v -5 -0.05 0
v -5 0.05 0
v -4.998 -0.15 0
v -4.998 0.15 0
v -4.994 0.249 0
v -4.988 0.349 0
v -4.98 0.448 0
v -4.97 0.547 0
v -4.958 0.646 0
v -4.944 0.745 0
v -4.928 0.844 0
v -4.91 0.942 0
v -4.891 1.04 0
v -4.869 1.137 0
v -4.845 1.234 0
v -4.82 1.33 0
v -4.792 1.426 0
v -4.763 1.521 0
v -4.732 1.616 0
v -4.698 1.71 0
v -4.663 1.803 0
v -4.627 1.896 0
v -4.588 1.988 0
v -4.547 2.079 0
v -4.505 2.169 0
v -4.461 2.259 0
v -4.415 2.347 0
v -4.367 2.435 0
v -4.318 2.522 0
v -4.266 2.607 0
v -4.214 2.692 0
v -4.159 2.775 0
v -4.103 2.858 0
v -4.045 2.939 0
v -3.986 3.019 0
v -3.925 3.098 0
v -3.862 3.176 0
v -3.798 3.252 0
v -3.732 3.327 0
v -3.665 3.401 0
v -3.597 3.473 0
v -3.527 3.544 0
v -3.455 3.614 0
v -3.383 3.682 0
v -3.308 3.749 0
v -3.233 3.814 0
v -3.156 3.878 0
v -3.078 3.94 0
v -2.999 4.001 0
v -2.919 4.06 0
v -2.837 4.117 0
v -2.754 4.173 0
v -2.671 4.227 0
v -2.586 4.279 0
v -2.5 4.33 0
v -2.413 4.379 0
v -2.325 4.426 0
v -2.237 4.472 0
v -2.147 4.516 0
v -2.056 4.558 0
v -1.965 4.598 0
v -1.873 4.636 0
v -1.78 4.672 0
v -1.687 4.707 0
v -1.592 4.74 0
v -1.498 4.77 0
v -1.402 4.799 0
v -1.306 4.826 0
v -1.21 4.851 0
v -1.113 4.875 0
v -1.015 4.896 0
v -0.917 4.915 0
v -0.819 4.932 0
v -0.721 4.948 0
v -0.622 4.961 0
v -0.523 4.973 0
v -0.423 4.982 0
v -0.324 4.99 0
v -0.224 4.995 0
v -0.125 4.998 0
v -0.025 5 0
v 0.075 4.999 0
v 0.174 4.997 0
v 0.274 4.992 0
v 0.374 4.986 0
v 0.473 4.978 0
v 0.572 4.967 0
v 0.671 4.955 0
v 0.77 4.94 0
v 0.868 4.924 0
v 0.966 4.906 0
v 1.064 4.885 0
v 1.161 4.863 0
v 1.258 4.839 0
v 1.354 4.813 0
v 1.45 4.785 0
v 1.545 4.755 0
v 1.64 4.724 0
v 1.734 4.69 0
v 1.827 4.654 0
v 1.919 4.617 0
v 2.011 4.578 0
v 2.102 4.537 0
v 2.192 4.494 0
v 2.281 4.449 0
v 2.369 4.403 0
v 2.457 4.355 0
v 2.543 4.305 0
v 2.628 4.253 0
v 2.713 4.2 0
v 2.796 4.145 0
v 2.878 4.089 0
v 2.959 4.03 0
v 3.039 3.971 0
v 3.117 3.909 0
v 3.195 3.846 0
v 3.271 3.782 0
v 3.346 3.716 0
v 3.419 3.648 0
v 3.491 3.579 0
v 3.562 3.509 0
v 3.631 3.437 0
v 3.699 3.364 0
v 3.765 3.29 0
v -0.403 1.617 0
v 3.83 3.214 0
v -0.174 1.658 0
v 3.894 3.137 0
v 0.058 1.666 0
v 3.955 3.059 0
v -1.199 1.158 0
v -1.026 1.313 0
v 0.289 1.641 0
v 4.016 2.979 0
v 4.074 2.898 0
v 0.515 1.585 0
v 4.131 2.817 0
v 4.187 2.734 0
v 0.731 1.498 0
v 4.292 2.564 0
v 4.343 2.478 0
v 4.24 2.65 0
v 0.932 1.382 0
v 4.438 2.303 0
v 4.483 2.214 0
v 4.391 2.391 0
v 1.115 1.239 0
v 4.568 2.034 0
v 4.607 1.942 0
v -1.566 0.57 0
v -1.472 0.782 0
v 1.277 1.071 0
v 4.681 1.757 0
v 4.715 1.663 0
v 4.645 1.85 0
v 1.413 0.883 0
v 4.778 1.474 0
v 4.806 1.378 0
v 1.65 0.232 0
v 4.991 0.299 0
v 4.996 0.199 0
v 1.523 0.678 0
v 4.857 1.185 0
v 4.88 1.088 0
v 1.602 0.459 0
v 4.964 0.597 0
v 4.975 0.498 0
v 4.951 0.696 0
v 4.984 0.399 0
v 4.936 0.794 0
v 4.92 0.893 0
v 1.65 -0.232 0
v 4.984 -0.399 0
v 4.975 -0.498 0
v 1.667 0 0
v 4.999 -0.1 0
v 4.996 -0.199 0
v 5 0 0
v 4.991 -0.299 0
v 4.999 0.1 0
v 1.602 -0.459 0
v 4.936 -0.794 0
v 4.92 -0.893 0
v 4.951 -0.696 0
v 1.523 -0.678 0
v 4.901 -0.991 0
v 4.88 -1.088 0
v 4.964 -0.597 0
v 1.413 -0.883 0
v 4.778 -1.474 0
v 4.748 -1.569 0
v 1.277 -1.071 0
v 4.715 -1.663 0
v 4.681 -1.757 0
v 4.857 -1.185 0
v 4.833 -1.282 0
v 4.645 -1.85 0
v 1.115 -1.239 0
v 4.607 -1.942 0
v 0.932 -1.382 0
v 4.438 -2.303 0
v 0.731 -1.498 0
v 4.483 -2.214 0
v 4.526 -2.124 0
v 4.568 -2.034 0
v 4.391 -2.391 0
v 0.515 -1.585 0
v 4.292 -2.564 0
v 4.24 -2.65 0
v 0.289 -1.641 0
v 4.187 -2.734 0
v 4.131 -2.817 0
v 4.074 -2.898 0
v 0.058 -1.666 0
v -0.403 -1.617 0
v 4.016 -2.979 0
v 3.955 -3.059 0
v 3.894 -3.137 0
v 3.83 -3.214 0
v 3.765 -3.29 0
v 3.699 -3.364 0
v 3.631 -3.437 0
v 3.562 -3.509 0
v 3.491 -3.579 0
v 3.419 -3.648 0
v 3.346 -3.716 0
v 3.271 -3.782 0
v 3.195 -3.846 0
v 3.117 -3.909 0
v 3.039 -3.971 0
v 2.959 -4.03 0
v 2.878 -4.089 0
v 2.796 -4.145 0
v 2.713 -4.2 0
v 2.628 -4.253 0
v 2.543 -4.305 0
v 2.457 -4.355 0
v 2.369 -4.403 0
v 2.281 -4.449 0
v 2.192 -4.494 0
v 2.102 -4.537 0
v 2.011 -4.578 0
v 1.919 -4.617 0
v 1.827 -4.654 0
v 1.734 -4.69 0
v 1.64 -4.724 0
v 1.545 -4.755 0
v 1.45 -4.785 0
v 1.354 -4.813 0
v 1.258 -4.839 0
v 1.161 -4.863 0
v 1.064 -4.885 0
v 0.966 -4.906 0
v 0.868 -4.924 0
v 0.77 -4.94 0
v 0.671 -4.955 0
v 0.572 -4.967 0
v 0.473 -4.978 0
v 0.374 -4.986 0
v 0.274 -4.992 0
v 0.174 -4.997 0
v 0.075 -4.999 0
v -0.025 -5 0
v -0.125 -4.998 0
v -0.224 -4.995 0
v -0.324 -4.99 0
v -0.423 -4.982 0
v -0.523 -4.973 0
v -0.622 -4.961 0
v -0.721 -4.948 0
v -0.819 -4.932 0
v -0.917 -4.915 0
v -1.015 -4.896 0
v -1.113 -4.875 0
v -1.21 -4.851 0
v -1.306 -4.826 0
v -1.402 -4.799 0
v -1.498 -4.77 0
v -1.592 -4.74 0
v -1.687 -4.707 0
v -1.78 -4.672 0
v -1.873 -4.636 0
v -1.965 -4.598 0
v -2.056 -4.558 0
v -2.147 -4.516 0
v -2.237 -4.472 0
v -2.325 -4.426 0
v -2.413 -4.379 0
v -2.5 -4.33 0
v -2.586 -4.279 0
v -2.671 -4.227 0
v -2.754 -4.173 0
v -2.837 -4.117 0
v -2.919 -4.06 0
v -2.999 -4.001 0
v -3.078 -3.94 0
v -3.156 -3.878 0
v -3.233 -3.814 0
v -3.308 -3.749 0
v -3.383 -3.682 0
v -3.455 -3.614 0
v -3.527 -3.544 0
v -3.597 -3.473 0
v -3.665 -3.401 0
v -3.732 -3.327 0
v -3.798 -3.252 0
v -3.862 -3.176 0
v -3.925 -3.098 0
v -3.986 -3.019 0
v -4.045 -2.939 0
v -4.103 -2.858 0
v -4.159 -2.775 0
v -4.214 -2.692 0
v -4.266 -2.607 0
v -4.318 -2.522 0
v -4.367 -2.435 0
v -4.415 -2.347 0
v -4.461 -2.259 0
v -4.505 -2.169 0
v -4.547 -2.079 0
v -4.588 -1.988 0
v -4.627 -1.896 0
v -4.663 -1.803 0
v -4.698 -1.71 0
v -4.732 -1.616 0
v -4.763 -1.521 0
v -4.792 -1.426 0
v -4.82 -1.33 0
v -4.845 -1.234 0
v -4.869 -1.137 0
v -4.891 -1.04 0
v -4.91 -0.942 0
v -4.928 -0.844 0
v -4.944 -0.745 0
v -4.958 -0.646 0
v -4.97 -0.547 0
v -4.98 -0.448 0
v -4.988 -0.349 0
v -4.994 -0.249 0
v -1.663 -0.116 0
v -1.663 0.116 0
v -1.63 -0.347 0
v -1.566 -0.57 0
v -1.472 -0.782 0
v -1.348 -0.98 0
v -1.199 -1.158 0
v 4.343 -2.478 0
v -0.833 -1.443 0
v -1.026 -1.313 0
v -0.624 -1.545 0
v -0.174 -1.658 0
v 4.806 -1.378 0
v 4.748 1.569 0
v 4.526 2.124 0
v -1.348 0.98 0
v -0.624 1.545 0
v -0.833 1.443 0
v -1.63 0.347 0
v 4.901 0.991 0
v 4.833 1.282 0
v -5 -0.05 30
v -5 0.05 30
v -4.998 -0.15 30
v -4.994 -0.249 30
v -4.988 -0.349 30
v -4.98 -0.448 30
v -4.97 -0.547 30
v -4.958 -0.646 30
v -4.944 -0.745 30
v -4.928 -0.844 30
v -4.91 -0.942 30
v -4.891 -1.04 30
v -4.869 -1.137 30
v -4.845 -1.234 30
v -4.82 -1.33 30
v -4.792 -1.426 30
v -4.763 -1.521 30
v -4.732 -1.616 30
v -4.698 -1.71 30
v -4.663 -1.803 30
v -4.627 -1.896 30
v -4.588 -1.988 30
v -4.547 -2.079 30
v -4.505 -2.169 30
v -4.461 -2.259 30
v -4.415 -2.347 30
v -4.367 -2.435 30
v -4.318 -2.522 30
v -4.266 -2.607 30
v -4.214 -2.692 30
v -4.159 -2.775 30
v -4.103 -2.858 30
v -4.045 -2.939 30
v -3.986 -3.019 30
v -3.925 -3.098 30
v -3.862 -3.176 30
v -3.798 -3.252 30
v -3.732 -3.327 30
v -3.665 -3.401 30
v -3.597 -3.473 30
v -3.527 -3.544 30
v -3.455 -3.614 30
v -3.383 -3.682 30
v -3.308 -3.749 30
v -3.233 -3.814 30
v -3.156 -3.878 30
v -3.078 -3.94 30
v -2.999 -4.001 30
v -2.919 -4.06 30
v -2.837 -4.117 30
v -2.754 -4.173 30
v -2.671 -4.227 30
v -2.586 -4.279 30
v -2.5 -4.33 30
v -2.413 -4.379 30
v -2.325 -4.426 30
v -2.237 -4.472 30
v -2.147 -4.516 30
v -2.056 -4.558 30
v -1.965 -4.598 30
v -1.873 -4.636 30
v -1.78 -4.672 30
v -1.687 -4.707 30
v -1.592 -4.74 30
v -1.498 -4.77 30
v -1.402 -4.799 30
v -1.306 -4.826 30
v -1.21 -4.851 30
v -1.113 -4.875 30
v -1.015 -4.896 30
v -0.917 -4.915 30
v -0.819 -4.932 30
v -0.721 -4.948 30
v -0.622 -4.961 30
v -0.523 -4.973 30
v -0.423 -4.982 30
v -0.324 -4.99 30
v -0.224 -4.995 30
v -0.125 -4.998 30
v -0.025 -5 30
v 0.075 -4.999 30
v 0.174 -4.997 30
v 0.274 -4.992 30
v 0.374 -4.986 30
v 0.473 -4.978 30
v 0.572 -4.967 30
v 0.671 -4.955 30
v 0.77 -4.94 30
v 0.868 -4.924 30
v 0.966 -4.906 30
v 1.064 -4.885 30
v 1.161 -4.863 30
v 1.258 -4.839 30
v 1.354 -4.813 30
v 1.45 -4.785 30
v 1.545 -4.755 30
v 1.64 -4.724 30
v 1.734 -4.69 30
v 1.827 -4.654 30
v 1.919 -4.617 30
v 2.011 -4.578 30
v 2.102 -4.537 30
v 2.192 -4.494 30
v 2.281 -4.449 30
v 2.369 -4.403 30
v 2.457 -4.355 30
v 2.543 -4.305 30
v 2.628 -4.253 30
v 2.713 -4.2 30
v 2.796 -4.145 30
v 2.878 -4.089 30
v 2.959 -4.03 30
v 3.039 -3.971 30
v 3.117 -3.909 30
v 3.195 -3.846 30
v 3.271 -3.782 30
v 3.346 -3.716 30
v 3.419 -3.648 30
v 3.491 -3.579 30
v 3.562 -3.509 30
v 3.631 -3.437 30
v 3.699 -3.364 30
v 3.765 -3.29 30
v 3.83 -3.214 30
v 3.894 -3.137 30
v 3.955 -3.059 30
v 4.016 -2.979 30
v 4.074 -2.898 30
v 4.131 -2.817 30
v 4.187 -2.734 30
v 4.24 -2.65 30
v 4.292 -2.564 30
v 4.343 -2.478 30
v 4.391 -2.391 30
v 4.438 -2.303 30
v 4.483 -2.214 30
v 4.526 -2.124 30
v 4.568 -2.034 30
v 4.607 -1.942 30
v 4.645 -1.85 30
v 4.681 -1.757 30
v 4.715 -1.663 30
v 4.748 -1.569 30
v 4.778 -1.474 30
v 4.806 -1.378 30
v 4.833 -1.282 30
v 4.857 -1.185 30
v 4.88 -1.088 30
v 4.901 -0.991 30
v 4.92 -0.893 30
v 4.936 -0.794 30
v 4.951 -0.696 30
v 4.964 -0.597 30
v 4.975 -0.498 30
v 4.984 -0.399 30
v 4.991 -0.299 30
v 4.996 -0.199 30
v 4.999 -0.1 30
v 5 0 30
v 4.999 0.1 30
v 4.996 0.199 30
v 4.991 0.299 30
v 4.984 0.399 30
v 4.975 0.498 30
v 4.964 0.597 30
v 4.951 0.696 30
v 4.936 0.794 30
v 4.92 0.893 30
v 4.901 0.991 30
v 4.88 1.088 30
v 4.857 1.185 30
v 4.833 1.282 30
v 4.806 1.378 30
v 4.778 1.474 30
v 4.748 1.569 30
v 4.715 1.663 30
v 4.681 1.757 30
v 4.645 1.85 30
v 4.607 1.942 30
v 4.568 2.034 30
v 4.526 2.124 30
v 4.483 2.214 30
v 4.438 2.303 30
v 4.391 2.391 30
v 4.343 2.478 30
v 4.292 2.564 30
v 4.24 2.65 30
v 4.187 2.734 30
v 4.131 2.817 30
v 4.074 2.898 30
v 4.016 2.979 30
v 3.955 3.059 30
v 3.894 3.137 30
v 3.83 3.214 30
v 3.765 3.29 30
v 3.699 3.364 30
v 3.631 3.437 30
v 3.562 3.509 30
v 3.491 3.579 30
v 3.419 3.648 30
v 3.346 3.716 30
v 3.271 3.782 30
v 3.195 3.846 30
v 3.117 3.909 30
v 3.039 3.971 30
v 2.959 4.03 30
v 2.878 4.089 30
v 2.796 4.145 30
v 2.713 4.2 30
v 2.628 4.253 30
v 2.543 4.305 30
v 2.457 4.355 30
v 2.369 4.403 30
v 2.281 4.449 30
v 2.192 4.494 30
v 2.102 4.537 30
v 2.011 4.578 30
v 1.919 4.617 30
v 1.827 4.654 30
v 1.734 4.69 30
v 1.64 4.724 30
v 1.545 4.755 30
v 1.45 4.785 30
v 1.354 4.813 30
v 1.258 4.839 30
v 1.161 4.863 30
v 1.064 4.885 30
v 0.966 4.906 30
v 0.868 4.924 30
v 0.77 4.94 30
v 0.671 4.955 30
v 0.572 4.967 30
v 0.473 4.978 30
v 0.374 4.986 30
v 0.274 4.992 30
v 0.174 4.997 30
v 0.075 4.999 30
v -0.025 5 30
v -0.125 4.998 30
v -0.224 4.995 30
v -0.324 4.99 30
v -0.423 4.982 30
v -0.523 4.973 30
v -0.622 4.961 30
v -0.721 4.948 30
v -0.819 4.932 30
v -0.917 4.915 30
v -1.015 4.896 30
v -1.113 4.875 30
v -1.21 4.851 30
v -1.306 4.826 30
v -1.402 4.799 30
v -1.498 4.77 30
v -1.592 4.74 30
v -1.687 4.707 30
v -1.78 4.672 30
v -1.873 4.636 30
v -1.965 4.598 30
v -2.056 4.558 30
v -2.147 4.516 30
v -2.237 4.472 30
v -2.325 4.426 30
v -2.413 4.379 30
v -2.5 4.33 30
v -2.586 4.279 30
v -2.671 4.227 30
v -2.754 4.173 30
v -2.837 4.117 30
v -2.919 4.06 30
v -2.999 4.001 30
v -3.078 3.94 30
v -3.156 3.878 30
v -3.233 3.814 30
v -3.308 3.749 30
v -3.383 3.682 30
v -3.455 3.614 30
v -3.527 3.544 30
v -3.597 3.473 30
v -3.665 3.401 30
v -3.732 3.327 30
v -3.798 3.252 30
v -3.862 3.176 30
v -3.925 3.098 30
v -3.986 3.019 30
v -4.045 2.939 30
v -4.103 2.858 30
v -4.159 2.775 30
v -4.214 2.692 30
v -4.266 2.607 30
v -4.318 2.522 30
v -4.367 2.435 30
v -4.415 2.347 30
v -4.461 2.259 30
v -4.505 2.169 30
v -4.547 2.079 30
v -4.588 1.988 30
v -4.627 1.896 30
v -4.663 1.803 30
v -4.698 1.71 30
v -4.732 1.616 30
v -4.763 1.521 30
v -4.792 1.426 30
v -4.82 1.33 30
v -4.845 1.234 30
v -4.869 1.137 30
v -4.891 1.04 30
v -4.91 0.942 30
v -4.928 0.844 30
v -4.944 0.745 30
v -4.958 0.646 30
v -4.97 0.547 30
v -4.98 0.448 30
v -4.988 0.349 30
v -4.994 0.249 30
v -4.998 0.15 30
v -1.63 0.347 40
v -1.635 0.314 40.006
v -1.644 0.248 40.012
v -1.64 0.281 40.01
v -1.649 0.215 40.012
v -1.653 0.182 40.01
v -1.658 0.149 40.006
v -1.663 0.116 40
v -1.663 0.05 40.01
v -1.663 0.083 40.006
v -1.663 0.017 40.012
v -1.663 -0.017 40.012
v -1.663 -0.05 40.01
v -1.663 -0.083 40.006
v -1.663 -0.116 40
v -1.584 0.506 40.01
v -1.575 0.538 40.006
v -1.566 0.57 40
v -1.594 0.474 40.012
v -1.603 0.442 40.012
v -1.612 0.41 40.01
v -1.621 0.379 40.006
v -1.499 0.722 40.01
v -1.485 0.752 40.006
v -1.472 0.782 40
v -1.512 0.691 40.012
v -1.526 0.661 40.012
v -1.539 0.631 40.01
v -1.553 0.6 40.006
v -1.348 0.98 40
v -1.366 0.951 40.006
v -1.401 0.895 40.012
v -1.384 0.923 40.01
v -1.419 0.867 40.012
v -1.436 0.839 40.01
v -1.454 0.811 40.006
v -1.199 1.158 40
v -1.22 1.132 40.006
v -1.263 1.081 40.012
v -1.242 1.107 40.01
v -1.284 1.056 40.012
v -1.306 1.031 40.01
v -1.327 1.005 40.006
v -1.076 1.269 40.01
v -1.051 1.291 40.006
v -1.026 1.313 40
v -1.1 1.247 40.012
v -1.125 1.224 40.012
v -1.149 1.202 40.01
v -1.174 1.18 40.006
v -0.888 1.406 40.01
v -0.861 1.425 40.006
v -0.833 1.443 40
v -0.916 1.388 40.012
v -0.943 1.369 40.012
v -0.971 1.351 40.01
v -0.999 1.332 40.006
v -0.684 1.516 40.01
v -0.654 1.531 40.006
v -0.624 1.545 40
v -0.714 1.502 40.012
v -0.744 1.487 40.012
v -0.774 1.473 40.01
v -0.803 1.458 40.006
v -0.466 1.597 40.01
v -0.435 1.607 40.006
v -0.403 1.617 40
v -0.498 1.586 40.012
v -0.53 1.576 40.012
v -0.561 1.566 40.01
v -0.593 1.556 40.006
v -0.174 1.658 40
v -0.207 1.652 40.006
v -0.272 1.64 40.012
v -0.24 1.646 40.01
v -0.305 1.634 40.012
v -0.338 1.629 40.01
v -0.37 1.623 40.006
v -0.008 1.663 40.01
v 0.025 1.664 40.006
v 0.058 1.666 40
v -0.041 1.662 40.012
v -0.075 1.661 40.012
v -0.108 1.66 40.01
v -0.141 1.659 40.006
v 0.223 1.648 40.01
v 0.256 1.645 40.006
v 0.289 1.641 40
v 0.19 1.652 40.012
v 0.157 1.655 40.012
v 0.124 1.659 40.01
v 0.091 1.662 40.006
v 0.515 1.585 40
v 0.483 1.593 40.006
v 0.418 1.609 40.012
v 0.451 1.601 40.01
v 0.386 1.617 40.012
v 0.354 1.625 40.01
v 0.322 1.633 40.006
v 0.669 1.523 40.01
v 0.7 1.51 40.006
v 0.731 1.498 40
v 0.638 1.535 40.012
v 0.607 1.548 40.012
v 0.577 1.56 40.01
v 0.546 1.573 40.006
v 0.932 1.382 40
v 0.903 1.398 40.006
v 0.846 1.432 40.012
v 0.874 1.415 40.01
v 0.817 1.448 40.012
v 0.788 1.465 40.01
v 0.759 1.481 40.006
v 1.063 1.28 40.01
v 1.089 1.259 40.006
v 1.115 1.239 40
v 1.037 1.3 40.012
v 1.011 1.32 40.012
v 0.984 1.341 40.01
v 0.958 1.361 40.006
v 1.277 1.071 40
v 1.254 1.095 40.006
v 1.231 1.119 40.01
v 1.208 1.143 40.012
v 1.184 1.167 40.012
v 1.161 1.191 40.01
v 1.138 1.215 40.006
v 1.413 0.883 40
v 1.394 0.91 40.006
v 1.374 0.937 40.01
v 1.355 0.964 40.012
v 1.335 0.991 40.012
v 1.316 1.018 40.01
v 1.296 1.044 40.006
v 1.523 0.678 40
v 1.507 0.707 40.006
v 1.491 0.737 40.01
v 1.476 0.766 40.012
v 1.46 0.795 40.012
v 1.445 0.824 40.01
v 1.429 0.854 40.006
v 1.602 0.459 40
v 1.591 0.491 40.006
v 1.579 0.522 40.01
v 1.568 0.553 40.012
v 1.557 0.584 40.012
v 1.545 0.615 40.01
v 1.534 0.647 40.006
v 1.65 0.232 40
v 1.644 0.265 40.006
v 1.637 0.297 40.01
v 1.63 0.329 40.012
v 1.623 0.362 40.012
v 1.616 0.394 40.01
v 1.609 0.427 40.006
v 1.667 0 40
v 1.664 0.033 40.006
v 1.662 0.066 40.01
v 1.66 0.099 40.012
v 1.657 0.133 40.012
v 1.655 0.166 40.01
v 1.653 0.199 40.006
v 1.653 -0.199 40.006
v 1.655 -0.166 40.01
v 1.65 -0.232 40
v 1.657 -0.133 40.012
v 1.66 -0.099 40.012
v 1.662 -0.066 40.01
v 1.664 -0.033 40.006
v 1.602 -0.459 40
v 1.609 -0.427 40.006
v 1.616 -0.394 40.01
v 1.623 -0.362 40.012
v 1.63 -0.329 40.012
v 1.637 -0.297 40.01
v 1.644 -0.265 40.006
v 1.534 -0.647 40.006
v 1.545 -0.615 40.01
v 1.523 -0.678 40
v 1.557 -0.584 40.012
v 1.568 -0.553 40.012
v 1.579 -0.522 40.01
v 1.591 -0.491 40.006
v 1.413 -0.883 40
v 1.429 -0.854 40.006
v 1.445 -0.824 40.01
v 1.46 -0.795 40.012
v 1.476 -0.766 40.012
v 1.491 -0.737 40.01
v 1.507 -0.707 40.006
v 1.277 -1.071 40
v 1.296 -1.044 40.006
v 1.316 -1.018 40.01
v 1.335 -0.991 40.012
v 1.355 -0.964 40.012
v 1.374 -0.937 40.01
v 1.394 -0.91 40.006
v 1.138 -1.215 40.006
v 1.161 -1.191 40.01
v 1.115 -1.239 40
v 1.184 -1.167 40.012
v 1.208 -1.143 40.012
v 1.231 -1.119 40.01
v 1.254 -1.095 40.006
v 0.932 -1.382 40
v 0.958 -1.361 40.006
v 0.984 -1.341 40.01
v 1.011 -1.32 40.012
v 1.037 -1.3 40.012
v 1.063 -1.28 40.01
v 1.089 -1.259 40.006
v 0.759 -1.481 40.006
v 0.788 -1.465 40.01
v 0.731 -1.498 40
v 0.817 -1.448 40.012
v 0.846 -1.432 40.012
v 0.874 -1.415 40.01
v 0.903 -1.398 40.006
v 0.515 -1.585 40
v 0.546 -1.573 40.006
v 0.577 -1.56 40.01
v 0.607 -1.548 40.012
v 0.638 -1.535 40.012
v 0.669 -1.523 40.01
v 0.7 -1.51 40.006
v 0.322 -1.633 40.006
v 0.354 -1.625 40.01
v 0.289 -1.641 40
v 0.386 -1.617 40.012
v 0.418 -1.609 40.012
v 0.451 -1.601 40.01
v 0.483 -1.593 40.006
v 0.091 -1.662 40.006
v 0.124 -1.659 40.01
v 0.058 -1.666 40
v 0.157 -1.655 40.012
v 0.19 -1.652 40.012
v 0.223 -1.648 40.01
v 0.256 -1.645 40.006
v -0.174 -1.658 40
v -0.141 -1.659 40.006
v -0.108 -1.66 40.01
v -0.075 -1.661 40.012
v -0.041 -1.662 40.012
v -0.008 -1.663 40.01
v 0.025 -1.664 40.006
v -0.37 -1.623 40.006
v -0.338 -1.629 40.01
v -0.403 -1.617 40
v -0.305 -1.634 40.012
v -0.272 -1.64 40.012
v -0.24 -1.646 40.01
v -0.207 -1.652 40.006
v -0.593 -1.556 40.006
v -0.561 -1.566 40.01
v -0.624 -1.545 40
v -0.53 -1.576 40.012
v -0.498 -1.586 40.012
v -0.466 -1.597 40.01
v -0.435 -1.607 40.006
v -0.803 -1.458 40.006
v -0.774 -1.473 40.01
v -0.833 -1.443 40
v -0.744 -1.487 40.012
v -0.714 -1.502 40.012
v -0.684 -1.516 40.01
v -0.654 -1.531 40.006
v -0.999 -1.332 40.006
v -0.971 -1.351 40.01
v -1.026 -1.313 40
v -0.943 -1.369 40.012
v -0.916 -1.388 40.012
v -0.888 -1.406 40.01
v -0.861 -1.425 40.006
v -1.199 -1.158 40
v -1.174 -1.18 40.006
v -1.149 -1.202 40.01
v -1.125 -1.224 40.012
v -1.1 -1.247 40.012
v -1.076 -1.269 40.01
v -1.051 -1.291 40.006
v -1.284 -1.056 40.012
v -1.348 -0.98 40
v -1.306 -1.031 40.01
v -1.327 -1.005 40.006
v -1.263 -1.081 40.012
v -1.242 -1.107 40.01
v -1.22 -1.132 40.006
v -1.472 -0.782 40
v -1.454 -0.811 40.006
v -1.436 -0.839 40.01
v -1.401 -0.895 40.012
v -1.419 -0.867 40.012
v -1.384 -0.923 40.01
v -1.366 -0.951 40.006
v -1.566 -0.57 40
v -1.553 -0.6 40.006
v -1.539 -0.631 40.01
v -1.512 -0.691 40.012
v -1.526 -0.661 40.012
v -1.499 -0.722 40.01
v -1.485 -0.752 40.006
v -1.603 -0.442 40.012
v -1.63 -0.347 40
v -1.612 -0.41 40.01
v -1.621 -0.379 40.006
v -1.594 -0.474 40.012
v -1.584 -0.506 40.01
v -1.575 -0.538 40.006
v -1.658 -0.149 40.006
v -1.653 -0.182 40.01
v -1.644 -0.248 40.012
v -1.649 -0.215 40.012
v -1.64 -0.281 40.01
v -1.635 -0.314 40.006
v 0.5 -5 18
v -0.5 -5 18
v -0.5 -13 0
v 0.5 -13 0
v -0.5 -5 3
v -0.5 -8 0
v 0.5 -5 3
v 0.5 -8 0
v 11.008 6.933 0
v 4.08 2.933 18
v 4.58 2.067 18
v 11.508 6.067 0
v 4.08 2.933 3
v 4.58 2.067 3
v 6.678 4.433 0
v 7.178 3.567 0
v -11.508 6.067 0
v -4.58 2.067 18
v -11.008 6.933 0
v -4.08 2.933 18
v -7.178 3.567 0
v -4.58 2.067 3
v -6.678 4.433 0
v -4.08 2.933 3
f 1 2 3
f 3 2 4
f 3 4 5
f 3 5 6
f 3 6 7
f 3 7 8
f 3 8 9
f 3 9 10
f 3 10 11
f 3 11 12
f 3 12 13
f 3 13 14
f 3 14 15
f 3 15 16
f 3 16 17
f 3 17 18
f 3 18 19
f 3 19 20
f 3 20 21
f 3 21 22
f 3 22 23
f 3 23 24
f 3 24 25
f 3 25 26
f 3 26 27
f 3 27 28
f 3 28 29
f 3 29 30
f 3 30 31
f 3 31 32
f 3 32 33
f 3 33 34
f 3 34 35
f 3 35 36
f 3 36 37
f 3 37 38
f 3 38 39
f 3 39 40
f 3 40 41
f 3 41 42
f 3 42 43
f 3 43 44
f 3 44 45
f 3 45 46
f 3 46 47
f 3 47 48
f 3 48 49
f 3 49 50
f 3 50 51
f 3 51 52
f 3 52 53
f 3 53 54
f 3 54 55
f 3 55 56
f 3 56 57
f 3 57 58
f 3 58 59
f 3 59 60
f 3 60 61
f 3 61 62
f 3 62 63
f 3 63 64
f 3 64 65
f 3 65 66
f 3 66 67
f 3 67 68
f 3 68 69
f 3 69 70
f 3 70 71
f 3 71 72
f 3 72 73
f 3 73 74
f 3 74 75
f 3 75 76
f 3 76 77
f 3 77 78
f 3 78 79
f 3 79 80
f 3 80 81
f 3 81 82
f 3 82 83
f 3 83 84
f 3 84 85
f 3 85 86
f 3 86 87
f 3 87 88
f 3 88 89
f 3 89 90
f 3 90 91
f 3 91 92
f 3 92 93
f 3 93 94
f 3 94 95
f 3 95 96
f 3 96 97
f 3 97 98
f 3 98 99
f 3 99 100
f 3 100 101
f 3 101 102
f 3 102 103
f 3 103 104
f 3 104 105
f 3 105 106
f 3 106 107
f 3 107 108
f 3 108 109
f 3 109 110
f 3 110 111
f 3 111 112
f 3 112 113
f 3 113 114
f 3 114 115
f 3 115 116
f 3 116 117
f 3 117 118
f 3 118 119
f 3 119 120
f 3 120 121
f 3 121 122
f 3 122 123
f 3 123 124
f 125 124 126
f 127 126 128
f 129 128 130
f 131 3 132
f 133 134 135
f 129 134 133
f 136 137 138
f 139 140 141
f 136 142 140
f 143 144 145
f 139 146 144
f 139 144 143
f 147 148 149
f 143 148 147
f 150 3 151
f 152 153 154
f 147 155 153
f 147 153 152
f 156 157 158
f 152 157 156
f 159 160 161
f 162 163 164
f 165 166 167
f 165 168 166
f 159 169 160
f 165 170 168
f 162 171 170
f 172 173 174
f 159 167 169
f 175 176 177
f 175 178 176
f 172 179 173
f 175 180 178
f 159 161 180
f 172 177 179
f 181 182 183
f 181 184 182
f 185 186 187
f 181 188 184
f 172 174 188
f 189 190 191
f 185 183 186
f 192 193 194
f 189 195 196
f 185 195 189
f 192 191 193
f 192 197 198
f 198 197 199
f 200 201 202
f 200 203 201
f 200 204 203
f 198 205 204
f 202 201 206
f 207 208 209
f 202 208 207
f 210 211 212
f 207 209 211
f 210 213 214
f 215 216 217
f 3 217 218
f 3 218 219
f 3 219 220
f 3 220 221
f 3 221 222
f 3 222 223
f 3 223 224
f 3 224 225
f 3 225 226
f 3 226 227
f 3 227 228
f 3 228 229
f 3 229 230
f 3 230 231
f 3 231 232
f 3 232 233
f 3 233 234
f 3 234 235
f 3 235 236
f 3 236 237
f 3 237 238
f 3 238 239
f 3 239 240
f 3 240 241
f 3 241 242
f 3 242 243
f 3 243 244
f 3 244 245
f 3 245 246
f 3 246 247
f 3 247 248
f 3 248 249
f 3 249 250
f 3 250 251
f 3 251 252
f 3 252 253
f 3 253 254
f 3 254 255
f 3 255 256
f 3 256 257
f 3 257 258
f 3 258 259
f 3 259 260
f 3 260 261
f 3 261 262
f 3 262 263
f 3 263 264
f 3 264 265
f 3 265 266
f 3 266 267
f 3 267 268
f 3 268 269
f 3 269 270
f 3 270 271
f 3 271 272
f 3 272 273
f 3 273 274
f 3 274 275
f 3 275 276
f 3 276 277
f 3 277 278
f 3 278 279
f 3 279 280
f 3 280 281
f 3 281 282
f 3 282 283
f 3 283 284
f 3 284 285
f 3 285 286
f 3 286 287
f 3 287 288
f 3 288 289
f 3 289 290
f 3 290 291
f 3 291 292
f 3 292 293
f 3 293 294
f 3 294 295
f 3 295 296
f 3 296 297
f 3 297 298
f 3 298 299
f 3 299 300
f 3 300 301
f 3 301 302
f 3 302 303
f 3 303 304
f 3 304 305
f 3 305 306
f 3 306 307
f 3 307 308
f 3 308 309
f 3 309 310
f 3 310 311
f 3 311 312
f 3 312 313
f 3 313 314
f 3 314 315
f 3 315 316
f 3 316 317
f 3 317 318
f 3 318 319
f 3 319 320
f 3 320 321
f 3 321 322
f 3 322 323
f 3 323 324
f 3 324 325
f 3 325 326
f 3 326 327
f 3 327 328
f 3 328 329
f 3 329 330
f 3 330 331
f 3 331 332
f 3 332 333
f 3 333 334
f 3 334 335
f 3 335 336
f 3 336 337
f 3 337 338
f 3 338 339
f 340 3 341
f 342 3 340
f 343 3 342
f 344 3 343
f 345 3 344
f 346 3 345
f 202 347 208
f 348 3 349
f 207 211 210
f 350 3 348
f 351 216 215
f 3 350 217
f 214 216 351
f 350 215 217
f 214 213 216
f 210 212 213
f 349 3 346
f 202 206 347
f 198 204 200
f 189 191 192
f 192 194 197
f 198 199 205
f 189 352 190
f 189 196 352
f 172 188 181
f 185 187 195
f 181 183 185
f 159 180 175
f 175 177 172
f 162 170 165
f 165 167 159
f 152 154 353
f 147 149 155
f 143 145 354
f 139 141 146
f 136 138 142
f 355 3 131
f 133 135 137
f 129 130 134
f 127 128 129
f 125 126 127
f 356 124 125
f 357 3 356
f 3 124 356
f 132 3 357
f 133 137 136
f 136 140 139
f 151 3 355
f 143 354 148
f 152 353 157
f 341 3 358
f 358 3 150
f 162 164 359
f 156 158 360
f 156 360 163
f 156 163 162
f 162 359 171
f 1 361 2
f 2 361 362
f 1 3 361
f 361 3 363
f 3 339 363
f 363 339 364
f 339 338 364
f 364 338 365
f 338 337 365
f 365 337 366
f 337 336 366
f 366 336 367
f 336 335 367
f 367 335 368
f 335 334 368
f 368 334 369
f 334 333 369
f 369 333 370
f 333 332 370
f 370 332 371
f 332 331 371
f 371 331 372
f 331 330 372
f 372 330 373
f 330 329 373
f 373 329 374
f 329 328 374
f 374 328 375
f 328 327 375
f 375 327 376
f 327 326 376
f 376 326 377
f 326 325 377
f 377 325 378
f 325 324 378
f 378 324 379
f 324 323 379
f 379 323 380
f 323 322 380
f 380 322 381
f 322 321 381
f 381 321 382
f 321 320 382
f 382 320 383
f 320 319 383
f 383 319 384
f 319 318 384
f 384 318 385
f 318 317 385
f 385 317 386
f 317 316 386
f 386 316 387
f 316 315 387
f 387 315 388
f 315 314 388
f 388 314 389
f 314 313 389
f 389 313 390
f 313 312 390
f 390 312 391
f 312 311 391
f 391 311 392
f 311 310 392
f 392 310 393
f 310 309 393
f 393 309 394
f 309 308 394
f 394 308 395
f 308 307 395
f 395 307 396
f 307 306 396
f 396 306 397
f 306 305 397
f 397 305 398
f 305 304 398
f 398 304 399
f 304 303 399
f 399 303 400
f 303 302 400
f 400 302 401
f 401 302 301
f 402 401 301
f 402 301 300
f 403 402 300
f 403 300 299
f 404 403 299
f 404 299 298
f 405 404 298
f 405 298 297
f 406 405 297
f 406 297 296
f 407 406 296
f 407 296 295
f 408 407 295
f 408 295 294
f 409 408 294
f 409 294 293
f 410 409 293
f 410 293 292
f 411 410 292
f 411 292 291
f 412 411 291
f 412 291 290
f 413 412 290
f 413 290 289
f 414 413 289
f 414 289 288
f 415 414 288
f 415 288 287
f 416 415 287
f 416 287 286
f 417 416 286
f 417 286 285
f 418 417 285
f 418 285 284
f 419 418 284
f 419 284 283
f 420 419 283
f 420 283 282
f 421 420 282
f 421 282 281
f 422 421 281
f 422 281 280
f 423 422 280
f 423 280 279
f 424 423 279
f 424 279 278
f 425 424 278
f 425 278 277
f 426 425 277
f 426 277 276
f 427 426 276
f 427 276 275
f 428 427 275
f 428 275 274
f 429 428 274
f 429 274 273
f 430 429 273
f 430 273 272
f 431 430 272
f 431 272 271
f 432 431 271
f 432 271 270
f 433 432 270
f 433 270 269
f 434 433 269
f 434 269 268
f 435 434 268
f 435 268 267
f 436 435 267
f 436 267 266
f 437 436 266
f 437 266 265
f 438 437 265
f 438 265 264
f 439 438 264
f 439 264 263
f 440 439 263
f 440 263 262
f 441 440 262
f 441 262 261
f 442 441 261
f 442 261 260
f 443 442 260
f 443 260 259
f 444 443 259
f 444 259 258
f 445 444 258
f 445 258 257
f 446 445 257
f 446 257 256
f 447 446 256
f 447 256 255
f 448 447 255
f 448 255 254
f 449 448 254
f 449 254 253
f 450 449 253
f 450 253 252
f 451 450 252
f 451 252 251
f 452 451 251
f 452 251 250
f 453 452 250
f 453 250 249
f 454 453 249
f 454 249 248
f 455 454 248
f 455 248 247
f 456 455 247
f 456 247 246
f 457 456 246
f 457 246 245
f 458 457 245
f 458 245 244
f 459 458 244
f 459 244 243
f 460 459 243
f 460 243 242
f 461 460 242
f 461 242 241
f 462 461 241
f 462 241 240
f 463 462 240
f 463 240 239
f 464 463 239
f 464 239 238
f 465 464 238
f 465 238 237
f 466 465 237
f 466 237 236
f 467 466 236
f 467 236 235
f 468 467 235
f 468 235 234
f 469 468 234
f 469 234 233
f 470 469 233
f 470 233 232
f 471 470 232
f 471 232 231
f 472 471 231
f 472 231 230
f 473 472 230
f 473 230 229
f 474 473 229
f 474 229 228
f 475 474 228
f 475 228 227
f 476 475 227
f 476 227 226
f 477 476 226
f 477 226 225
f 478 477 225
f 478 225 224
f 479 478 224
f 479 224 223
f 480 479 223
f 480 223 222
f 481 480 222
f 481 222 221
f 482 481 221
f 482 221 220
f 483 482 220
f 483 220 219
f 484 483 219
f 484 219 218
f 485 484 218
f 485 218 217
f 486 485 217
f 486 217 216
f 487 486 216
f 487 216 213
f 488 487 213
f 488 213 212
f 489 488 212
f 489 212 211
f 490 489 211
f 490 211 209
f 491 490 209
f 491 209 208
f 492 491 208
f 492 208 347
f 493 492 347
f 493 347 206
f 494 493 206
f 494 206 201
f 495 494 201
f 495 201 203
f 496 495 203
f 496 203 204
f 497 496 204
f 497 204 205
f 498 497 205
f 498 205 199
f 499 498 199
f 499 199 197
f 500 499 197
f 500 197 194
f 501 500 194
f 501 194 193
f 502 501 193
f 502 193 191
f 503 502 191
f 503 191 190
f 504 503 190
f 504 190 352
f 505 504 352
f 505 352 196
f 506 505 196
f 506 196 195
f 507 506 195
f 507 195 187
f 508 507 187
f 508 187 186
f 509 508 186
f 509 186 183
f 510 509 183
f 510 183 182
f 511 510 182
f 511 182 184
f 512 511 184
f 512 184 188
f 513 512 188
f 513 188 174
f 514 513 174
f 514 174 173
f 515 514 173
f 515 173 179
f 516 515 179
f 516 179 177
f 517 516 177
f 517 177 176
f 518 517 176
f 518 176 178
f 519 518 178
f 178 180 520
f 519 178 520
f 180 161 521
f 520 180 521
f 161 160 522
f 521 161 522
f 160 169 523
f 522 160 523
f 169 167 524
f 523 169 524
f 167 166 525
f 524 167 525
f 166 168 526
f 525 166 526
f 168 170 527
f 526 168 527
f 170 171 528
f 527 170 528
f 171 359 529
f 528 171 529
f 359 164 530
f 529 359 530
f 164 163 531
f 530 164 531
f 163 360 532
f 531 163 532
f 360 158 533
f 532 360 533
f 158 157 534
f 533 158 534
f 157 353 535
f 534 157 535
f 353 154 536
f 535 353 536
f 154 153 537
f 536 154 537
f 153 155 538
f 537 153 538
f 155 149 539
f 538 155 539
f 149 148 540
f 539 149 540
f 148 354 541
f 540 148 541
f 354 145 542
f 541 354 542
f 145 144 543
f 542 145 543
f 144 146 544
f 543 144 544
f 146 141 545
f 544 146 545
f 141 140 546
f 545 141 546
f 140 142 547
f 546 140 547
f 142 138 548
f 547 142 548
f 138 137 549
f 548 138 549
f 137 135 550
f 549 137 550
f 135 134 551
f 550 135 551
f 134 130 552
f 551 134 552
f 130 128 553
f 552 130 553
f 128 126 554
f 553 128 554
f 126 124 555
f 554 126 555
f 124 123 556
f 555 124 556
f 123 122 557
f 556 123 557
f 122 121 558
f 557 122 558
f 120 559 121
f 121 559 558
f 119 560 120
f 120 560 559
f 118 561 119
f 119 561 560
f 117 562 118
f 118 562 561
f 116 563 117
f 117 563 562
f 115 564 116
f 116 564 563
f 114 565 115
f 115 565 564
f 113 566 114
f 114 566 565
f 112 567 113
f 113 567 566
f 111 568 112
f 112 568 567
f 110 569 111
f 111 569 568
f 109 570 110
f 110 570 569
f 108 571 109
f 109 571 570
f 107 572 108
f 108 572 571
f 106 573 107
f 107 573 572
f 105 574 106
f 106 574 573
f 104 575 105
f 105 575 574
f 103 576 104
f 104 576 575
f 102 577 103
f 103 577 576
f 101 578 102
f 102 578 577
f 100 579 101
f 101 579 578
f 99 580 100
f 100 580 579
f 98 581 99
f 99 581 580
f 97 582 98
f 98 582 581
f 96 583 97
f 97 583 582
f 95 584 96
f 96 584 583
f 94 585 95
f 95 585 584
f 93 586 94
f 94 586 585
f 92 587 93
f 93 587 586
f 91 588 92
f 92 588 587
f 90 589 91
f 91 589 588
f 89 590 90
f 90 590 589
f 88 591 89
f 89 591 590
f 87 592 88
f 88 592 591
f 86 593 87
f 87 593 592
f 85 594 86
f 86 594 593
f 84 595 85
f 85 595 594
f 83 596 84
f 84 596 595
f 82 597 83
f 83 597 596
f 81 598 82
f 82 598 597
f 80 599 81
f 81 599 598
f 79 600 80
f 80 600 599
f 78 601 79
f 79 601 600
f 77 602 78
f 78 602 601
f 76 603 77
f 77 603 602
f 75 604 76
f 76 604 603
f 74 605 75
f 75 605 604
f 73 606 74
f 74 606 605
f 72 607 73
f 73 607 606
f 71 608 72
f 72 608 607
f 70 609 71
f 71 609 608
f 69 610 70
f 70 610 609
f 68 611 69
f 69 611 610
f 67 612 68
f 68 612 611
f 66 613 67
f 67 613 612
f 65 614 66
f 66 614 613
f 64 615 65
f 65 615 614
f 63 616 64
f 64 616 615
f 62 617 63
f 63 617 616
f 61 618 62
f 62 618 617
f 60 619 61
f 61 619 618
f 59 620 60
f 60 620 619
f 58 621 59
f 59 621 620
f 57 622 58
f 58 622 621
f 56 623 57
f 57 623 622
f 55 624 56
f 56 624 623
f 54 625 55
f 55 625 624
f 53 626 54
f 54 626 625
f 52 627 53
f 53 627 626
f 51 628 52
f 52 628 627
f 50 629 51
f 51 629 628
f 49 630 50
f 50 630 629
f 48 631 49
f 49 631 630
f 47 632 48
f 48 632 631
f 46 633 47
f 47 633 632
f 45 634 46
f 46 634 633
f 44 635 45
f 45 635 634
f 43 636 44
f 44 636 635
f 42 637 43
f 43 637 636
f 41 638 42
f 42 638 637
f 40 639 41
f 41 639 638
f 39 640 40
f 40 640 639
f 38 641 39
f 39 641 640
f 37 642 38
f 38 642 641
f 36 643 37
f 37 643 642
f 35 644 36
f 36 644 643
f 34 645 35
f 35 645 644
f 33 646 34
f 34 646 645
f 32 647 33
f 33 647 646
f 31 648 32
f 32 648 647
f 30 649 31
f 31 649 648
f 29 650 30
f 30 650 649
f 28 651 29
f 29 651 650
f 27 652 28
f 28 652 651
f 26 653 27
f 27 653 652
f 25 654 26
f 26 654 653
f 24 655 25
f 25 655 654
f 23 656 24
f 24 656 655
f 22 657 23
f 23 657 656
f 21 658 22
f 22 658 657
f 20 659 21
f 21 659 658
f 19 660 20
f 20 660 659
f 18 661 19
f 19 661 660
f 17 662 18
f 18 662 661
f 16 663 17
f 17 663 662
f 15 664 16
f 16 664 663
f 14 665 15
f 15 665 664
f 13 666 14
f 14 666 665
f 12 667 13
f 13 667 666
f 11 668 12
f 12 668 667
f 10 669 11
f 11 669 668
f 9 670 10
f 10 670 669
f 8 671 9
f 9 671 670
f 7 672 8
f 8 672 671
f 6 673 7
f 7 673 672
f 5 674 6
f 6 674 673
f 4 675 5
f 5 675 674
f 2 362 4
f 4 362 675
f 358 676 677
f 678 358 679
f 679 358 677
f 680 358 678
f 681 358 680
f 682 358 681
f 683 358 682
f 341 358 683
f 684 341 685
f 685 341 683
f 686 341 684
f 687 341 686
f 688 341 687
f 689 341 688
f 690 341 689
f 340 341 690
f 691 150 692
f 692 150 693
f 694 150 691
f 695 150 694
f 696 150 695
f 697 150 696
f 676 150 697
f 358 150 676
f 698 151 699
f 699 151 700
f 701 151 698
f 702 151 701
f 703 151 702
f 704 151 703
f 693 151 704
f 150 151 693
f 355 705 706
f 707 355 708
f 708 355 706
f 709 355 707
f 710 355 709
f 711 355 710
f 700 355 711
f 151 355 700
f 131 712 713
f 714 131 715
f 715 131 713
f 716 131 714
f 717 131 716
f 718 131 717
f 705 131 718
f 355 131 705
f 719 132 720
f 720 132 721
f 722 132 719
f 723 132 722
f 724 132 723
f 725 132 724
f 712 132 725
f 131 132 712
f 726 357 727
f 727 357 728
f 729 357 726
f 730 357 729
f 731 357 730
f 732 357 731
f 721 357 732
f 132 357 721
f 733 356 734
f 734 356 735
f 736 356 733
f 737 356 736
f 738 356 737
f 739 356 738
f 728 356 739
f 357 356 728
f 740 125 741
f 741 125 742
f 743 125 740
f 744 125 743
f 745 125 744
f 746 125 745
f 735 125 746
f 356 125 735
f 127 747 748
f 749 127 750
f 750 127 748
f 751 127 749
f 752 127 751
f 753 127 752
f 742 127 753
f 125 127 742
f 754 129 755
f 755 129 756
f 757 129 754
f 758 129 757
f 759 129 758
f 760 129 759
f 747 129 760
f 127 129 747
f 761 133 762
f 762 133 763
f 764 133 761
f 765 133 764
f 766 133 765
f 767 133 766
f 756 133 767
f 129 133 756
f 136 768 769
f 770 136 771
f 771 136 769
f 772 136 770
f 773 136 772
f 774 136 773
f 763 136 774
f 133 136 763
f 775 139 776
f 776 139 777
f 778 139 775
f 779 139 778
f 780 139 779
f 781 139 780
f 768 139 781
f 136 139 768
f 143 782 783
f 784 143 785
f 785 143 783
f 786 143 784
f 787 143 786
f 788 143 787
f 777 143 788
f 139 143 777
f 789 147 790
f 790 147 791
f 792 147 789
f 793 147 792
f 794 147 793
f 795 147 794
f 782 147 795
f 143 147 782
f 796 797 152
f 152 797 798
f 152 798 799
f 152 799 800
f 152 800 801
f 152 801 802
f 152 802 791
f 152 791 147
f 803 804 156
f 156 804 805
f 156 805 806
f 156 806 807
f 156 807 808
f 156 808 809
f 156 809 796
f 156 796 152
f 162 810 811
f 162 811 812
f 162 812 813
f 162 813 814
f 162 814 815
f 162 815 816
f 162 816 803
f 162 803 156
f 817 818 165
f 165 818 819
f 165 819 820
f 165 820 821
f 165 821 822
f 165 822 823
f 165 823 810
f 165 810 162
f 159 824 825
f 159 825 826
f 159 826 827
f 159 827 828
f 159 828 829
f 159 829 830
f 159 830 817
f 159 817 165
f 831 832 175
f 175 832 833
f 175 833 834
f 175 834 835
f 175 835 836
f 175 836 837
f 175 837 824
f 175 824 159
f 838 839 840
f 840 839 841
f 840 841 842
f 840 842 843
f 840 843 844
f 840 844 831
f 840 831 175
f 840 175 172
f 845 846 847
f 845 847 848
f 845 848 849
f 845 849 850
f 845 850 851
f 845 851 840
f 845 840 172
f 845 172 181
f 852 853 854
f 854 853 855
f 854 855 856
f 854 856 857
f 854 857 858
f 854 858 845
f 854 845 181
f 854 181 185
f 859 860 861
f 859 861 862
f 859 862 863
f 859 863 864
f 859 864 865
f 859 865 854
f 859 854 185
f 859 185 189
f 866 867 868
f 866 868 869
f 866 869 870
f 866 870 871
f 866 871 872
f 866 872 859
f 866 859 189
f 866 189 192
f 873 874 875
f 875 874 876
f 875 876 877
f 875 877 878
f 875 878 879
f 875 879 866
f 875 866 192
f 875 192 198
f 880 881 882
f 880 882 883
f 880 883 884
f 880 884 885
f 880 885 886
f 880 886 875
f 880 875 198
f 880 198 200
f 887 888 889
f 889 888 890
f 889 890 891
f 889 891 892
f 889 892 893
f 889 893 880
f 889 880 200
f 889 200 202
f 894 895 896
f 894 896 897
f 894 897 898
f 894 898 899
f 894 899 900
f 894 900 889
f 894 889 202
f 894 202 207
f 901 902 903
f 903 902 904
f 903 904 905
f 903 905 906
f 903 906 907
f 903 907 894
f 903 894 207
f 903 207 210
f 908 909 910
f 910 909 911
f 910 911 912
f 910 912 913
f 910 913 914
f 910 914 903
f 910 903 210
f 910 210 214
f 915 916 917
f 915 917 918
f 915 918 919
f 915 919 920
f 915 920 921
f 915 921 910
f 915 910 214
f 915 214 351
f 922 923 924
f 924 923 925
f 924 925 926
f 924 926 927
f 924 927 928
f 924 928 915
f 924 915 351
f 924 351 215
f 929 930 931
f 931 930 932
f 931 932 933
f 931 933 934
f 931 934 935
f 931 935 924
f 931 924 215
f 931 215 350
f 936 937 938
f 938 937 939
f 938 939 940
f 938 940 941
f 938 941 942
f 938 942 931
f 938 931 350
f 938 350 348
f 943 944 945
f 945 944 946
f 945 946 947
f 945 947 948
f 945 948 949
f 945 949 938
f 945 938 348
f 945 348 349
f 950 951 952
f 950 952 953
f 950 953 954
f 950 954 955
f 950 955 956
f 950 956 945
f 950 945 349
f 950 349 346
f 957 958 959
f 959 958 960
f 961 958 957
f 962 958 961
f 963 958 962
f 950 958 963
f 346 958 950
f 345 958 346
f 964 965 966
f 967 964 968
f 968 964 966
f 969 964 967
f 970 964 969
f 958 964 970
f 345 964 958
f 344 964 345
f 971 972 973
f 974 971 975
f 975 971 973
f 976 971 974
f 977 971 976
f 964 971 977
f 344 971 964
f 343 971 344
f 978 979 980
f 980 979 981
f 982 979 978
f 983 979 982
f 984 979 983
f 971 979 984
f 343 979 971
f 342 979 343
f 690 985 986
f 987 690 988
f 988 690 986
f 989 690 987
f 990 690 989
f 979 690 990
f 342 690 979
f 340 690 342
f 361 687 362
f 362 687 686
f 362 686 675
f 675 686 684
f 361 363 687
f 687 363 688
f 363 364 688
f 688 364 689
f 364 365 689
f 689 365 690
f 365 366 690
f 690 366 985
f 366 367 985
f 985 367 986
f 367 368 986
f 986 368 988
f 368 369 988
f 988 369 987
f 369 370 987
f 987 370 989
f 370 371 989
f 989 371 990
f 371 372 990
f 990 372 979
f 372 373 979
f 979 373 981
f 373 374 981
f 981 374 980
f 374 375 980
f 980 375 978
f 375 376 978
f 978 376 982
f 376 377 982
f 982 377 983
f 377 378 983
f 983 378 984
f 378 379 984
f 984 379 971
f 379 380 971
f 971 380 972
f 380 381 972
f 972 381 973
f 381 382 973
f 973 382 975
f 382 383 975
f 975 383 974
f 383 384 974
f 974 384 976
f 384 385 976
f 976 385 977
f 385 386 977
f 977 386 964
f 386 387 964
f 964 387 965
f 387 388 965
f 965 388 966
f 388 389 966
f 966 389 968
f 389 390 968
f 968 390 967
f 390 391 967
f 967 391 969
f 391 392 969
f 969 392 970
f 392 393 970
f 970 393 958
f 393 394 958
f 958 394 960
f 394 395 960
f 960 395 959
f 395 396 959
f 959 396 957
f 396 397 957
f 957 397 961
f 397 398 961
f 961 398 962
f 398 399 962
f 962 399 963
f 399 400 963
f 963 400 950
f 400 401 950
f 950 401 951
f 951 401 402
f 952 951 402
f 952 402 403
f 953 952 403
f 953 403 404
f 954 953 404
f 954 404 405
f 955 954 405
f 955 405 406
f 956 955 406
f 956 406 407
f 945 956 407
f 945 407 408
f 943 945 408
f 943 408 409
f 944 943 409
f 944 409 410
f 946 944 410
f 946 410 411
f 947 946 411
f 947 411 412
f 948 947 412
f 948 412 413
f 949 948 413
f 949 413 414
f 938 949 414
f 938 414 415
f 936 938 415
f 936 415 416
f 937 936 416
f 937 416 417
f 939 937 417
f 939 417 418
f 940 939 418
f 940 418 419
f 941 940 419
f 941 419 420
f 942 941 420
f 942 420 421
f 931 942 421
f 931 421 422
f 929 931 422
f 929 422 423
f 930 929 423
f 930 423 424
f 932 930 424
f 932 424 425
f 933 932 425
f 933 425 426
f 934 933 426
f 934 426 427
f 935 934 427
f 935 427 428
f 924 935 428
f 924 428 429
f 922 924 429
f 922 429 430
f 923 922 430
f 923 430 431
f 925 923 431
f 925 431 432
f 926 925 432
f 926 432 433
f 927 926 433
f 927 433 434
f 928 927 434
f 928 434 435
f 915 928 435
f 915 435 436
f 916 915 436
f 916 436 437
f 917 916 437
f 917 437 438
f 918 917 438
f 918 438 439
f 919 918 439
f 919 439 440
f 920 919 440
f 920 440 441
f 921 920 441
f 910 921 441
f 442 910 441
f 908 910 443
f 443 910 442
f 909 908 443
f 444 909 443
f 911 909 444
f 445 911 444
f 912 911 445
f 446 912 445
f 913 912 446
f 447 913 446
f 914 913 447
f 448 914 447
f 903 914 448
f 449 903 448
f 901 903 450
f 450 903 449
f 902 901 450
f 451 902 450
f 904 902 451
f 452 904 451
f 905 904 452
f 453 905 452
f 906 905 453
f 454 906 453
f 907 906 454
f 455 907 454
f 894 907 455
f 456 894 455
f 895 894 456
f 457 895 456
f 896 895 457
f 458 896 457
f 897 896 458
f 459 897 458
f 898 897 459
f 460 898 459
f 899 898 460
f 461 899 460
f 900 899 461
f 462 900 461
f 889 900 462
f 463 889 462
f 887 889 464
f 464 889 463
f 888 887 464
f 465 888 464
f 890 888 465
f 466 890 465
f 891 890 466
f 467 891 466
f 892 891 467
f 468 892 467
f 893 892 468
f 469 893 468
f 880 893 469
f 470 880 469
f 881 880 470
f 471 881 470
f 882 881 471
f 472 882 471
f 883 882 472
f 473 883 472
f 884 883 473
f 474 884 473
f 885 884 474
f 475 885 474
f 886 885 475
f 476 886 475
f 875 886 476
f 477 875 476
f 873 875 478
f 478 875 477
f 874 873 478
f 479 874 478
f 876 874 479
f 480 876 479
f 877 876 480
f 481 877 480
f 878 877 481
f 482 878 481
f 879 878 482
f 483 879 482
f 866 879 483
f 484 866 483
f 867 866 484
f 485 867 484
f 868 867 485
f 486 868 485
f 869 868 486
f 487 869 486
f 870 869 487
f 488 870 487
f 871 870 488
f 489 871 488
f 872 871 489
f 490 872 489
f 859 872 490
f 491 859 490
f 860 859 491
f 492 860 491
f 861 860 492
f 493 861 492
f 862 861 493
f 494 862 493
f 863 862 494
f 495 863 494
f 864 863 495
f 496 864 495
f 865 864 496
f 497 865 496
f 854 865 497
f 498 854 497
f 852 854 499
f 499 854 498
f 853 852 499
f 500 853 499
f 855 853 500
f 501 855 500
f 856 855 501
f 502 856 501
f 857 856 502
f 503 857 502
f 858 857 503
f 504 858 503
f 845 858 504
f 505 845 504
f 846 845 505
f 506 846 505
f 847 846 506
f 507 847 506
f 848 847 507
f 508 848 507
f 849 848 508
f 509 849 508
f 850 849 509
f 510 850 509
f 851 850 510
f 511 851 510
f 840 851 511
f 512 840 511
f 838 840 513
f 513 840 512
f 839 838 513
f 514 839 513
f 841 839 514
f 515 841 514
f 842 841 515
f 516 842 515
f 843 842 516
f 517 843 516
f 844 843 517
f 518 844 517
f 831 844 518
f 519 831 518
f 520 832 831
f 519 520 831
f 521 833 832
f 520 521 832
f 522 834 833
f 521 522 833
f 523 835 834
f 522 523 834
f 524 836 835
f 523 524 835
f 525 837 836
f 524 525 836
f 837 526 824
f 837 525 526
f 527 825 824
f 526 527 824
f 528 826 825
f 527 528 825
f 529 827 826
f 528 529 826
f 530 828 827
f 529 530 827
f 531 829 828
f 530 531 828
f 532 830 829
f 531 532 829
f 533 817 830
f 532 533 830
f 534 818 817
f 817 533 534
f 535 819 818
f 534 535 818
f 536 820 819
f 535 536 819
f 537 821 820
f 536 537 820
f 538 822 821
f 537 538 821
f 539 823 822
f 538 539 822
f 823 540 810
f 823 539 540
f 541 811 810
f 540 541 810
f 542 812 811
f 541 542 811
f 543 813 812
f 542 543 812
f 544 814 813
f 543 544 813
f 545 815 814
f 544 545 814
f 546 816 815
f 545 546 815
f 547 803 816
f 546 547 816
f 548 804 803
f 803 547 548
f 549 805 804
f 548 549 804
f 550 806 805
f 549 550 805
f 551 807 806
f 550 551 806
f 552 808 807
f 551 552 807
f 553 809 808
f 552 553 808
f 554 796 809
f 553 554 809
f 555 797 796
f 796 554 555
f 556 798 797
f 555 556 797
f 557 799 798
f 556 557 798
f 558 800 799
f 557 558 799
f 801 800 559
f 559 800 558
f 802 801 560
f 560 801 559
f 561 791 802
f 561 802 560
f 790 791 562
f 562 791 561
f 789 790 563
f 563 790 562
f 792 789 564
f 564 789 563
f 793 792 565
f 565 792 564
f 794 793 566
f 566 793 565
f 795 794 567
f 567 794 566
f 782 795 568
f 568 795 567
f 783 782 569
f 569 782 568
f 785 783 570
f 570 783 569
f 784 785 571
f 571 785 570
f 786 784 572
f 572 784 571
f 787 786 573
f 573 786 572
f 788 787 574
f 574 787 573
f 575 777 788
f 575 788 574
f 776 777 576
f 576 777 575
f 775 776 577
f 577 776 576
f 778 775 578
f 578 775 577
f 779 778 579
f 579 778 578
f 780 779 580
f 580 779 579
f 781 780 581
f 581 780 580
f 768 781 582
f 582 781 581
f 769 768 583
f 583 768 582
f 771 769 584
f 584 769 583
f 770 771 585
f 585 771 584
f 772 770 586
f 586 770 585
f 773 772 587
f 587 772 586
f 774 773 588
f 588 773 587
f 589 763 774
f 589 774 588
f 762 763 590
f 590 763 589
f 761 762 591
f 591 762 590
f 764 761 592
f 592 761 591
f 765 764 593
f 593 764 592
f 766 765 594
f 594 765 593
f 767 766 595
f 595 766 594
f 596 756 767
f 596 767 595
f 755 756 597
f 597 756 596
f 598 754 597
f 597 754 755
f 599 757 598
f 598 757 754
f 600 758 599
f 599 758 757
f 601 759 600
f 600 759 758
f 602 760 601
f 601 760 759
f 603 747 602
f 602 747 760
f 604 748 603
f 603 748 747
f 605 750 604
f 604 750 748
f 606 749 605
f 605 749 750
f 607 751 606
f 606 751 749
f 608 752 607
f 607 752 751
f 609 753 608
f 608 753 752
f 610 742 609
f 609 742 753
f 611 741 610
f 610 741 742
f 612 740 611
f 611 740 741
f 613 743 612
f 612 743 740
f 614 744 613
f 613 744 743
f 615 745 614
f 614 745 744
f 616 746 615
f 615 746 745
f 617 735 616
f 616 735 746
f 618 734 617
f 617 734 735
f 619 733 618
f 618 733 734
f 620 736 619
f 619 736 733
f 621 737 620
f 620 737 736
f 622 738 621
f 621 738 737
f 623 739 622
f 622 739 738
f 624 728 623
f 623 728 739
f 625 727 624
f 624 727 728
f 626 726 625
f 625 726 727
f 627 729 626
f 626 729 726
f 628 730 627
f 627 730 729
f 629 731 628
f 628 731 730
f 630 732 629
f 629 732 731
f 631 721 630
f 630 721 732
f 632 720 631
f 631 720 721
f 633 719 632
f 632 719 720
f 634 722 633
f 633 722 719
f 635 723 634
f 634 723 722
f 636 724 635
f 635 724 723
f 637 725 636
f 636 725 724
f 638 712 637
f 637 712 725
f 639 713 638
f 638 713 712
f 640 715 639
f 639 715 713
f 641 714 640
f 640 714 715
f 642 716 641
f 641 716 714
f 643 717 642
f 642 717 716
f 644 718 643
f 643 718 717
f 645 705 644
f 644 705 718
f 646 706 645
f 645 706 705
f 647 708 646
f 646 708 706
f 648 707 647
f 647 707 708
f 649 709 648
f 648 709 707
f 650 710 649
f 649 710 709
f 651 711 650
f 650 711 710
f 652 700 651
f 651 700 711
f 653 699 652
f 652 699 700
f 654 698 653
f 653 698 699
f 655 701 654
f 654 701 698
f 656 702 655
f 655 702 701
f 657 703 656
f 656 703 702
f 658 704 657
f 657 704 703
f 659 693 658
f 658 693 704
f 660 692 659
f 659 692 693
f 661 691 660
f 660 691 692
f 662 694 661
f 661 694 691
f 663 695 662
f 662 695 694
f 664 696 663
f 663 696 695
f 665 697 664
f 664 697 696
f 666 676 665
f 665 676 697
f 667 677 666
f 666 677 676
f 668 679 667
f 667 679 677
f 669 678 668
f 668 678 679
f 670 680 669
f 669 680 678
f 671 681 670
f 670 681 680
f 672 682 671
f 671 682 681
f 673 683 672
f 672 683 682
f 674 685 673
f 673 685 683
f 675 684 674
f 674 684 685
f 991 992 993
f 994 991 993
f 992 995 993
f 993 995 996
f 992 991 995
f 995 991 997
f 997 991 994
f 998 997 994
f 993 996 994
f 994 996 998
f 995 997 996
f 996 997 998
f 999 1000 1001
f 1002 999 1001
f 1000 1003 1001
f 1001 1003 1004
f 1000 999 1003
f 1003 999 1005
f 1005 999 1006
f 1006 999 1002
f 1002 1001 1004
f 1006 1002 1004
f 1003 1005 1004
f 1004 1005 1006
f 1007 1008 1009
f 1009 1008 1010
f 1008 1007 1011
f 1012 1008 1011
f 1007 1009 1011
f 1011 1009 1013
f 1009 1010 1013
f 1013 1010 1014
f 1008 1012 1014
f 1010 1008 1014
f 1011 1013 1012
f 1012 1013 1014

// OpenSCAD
//lenght of main section
len=30;
//radius of body
rad=5;
//radius of hole
holerad=rad/3;



// Lets have more sides on circles:
$fa = 0.5;
$fs = 0.1;

//making
spacebead();


//making a hole in spaceship
module spacebead() {
  difference() {
    rocket(rad, len, scale=1);
    cylinder(3*len, holerad,holerad,  center = true, $fn=45 );
  }
}

// Rocket module.  

module rocket(rad = 5, len = 40, scale = 1) {
  
   
  scale(scale) {
    translate([0,0,0]) {   
      // Head
      translate([0,0,len]) {
	   cylinder(r1 =  rad, r2 = 0, h = len/2, center = false);
      }

      // Body
      translate([0,0,0]) {
        cylinder(r =  rad, h = len, center = false);
      }
  
      // Side wings
      wing(0,rad,len, 0);
      wing(120,rad,len, 0);
      wing(240,rad,len, 0);
      }
    }
  }


// Side wing module
module wing(a,rad,len, groundheight) {
  rotate(a= [a,270,0]) {
    // Define the wing shape with a polygon, and extrude it 
    linear_extrude(height = 1, center = true, convexity = 10, twist = 0) {
      translate([0, -rad, 0]) {
        polygon( points=[[0,-8],[0,-3],[3,0],[18,0]] );
      }	
    }
  }
}
